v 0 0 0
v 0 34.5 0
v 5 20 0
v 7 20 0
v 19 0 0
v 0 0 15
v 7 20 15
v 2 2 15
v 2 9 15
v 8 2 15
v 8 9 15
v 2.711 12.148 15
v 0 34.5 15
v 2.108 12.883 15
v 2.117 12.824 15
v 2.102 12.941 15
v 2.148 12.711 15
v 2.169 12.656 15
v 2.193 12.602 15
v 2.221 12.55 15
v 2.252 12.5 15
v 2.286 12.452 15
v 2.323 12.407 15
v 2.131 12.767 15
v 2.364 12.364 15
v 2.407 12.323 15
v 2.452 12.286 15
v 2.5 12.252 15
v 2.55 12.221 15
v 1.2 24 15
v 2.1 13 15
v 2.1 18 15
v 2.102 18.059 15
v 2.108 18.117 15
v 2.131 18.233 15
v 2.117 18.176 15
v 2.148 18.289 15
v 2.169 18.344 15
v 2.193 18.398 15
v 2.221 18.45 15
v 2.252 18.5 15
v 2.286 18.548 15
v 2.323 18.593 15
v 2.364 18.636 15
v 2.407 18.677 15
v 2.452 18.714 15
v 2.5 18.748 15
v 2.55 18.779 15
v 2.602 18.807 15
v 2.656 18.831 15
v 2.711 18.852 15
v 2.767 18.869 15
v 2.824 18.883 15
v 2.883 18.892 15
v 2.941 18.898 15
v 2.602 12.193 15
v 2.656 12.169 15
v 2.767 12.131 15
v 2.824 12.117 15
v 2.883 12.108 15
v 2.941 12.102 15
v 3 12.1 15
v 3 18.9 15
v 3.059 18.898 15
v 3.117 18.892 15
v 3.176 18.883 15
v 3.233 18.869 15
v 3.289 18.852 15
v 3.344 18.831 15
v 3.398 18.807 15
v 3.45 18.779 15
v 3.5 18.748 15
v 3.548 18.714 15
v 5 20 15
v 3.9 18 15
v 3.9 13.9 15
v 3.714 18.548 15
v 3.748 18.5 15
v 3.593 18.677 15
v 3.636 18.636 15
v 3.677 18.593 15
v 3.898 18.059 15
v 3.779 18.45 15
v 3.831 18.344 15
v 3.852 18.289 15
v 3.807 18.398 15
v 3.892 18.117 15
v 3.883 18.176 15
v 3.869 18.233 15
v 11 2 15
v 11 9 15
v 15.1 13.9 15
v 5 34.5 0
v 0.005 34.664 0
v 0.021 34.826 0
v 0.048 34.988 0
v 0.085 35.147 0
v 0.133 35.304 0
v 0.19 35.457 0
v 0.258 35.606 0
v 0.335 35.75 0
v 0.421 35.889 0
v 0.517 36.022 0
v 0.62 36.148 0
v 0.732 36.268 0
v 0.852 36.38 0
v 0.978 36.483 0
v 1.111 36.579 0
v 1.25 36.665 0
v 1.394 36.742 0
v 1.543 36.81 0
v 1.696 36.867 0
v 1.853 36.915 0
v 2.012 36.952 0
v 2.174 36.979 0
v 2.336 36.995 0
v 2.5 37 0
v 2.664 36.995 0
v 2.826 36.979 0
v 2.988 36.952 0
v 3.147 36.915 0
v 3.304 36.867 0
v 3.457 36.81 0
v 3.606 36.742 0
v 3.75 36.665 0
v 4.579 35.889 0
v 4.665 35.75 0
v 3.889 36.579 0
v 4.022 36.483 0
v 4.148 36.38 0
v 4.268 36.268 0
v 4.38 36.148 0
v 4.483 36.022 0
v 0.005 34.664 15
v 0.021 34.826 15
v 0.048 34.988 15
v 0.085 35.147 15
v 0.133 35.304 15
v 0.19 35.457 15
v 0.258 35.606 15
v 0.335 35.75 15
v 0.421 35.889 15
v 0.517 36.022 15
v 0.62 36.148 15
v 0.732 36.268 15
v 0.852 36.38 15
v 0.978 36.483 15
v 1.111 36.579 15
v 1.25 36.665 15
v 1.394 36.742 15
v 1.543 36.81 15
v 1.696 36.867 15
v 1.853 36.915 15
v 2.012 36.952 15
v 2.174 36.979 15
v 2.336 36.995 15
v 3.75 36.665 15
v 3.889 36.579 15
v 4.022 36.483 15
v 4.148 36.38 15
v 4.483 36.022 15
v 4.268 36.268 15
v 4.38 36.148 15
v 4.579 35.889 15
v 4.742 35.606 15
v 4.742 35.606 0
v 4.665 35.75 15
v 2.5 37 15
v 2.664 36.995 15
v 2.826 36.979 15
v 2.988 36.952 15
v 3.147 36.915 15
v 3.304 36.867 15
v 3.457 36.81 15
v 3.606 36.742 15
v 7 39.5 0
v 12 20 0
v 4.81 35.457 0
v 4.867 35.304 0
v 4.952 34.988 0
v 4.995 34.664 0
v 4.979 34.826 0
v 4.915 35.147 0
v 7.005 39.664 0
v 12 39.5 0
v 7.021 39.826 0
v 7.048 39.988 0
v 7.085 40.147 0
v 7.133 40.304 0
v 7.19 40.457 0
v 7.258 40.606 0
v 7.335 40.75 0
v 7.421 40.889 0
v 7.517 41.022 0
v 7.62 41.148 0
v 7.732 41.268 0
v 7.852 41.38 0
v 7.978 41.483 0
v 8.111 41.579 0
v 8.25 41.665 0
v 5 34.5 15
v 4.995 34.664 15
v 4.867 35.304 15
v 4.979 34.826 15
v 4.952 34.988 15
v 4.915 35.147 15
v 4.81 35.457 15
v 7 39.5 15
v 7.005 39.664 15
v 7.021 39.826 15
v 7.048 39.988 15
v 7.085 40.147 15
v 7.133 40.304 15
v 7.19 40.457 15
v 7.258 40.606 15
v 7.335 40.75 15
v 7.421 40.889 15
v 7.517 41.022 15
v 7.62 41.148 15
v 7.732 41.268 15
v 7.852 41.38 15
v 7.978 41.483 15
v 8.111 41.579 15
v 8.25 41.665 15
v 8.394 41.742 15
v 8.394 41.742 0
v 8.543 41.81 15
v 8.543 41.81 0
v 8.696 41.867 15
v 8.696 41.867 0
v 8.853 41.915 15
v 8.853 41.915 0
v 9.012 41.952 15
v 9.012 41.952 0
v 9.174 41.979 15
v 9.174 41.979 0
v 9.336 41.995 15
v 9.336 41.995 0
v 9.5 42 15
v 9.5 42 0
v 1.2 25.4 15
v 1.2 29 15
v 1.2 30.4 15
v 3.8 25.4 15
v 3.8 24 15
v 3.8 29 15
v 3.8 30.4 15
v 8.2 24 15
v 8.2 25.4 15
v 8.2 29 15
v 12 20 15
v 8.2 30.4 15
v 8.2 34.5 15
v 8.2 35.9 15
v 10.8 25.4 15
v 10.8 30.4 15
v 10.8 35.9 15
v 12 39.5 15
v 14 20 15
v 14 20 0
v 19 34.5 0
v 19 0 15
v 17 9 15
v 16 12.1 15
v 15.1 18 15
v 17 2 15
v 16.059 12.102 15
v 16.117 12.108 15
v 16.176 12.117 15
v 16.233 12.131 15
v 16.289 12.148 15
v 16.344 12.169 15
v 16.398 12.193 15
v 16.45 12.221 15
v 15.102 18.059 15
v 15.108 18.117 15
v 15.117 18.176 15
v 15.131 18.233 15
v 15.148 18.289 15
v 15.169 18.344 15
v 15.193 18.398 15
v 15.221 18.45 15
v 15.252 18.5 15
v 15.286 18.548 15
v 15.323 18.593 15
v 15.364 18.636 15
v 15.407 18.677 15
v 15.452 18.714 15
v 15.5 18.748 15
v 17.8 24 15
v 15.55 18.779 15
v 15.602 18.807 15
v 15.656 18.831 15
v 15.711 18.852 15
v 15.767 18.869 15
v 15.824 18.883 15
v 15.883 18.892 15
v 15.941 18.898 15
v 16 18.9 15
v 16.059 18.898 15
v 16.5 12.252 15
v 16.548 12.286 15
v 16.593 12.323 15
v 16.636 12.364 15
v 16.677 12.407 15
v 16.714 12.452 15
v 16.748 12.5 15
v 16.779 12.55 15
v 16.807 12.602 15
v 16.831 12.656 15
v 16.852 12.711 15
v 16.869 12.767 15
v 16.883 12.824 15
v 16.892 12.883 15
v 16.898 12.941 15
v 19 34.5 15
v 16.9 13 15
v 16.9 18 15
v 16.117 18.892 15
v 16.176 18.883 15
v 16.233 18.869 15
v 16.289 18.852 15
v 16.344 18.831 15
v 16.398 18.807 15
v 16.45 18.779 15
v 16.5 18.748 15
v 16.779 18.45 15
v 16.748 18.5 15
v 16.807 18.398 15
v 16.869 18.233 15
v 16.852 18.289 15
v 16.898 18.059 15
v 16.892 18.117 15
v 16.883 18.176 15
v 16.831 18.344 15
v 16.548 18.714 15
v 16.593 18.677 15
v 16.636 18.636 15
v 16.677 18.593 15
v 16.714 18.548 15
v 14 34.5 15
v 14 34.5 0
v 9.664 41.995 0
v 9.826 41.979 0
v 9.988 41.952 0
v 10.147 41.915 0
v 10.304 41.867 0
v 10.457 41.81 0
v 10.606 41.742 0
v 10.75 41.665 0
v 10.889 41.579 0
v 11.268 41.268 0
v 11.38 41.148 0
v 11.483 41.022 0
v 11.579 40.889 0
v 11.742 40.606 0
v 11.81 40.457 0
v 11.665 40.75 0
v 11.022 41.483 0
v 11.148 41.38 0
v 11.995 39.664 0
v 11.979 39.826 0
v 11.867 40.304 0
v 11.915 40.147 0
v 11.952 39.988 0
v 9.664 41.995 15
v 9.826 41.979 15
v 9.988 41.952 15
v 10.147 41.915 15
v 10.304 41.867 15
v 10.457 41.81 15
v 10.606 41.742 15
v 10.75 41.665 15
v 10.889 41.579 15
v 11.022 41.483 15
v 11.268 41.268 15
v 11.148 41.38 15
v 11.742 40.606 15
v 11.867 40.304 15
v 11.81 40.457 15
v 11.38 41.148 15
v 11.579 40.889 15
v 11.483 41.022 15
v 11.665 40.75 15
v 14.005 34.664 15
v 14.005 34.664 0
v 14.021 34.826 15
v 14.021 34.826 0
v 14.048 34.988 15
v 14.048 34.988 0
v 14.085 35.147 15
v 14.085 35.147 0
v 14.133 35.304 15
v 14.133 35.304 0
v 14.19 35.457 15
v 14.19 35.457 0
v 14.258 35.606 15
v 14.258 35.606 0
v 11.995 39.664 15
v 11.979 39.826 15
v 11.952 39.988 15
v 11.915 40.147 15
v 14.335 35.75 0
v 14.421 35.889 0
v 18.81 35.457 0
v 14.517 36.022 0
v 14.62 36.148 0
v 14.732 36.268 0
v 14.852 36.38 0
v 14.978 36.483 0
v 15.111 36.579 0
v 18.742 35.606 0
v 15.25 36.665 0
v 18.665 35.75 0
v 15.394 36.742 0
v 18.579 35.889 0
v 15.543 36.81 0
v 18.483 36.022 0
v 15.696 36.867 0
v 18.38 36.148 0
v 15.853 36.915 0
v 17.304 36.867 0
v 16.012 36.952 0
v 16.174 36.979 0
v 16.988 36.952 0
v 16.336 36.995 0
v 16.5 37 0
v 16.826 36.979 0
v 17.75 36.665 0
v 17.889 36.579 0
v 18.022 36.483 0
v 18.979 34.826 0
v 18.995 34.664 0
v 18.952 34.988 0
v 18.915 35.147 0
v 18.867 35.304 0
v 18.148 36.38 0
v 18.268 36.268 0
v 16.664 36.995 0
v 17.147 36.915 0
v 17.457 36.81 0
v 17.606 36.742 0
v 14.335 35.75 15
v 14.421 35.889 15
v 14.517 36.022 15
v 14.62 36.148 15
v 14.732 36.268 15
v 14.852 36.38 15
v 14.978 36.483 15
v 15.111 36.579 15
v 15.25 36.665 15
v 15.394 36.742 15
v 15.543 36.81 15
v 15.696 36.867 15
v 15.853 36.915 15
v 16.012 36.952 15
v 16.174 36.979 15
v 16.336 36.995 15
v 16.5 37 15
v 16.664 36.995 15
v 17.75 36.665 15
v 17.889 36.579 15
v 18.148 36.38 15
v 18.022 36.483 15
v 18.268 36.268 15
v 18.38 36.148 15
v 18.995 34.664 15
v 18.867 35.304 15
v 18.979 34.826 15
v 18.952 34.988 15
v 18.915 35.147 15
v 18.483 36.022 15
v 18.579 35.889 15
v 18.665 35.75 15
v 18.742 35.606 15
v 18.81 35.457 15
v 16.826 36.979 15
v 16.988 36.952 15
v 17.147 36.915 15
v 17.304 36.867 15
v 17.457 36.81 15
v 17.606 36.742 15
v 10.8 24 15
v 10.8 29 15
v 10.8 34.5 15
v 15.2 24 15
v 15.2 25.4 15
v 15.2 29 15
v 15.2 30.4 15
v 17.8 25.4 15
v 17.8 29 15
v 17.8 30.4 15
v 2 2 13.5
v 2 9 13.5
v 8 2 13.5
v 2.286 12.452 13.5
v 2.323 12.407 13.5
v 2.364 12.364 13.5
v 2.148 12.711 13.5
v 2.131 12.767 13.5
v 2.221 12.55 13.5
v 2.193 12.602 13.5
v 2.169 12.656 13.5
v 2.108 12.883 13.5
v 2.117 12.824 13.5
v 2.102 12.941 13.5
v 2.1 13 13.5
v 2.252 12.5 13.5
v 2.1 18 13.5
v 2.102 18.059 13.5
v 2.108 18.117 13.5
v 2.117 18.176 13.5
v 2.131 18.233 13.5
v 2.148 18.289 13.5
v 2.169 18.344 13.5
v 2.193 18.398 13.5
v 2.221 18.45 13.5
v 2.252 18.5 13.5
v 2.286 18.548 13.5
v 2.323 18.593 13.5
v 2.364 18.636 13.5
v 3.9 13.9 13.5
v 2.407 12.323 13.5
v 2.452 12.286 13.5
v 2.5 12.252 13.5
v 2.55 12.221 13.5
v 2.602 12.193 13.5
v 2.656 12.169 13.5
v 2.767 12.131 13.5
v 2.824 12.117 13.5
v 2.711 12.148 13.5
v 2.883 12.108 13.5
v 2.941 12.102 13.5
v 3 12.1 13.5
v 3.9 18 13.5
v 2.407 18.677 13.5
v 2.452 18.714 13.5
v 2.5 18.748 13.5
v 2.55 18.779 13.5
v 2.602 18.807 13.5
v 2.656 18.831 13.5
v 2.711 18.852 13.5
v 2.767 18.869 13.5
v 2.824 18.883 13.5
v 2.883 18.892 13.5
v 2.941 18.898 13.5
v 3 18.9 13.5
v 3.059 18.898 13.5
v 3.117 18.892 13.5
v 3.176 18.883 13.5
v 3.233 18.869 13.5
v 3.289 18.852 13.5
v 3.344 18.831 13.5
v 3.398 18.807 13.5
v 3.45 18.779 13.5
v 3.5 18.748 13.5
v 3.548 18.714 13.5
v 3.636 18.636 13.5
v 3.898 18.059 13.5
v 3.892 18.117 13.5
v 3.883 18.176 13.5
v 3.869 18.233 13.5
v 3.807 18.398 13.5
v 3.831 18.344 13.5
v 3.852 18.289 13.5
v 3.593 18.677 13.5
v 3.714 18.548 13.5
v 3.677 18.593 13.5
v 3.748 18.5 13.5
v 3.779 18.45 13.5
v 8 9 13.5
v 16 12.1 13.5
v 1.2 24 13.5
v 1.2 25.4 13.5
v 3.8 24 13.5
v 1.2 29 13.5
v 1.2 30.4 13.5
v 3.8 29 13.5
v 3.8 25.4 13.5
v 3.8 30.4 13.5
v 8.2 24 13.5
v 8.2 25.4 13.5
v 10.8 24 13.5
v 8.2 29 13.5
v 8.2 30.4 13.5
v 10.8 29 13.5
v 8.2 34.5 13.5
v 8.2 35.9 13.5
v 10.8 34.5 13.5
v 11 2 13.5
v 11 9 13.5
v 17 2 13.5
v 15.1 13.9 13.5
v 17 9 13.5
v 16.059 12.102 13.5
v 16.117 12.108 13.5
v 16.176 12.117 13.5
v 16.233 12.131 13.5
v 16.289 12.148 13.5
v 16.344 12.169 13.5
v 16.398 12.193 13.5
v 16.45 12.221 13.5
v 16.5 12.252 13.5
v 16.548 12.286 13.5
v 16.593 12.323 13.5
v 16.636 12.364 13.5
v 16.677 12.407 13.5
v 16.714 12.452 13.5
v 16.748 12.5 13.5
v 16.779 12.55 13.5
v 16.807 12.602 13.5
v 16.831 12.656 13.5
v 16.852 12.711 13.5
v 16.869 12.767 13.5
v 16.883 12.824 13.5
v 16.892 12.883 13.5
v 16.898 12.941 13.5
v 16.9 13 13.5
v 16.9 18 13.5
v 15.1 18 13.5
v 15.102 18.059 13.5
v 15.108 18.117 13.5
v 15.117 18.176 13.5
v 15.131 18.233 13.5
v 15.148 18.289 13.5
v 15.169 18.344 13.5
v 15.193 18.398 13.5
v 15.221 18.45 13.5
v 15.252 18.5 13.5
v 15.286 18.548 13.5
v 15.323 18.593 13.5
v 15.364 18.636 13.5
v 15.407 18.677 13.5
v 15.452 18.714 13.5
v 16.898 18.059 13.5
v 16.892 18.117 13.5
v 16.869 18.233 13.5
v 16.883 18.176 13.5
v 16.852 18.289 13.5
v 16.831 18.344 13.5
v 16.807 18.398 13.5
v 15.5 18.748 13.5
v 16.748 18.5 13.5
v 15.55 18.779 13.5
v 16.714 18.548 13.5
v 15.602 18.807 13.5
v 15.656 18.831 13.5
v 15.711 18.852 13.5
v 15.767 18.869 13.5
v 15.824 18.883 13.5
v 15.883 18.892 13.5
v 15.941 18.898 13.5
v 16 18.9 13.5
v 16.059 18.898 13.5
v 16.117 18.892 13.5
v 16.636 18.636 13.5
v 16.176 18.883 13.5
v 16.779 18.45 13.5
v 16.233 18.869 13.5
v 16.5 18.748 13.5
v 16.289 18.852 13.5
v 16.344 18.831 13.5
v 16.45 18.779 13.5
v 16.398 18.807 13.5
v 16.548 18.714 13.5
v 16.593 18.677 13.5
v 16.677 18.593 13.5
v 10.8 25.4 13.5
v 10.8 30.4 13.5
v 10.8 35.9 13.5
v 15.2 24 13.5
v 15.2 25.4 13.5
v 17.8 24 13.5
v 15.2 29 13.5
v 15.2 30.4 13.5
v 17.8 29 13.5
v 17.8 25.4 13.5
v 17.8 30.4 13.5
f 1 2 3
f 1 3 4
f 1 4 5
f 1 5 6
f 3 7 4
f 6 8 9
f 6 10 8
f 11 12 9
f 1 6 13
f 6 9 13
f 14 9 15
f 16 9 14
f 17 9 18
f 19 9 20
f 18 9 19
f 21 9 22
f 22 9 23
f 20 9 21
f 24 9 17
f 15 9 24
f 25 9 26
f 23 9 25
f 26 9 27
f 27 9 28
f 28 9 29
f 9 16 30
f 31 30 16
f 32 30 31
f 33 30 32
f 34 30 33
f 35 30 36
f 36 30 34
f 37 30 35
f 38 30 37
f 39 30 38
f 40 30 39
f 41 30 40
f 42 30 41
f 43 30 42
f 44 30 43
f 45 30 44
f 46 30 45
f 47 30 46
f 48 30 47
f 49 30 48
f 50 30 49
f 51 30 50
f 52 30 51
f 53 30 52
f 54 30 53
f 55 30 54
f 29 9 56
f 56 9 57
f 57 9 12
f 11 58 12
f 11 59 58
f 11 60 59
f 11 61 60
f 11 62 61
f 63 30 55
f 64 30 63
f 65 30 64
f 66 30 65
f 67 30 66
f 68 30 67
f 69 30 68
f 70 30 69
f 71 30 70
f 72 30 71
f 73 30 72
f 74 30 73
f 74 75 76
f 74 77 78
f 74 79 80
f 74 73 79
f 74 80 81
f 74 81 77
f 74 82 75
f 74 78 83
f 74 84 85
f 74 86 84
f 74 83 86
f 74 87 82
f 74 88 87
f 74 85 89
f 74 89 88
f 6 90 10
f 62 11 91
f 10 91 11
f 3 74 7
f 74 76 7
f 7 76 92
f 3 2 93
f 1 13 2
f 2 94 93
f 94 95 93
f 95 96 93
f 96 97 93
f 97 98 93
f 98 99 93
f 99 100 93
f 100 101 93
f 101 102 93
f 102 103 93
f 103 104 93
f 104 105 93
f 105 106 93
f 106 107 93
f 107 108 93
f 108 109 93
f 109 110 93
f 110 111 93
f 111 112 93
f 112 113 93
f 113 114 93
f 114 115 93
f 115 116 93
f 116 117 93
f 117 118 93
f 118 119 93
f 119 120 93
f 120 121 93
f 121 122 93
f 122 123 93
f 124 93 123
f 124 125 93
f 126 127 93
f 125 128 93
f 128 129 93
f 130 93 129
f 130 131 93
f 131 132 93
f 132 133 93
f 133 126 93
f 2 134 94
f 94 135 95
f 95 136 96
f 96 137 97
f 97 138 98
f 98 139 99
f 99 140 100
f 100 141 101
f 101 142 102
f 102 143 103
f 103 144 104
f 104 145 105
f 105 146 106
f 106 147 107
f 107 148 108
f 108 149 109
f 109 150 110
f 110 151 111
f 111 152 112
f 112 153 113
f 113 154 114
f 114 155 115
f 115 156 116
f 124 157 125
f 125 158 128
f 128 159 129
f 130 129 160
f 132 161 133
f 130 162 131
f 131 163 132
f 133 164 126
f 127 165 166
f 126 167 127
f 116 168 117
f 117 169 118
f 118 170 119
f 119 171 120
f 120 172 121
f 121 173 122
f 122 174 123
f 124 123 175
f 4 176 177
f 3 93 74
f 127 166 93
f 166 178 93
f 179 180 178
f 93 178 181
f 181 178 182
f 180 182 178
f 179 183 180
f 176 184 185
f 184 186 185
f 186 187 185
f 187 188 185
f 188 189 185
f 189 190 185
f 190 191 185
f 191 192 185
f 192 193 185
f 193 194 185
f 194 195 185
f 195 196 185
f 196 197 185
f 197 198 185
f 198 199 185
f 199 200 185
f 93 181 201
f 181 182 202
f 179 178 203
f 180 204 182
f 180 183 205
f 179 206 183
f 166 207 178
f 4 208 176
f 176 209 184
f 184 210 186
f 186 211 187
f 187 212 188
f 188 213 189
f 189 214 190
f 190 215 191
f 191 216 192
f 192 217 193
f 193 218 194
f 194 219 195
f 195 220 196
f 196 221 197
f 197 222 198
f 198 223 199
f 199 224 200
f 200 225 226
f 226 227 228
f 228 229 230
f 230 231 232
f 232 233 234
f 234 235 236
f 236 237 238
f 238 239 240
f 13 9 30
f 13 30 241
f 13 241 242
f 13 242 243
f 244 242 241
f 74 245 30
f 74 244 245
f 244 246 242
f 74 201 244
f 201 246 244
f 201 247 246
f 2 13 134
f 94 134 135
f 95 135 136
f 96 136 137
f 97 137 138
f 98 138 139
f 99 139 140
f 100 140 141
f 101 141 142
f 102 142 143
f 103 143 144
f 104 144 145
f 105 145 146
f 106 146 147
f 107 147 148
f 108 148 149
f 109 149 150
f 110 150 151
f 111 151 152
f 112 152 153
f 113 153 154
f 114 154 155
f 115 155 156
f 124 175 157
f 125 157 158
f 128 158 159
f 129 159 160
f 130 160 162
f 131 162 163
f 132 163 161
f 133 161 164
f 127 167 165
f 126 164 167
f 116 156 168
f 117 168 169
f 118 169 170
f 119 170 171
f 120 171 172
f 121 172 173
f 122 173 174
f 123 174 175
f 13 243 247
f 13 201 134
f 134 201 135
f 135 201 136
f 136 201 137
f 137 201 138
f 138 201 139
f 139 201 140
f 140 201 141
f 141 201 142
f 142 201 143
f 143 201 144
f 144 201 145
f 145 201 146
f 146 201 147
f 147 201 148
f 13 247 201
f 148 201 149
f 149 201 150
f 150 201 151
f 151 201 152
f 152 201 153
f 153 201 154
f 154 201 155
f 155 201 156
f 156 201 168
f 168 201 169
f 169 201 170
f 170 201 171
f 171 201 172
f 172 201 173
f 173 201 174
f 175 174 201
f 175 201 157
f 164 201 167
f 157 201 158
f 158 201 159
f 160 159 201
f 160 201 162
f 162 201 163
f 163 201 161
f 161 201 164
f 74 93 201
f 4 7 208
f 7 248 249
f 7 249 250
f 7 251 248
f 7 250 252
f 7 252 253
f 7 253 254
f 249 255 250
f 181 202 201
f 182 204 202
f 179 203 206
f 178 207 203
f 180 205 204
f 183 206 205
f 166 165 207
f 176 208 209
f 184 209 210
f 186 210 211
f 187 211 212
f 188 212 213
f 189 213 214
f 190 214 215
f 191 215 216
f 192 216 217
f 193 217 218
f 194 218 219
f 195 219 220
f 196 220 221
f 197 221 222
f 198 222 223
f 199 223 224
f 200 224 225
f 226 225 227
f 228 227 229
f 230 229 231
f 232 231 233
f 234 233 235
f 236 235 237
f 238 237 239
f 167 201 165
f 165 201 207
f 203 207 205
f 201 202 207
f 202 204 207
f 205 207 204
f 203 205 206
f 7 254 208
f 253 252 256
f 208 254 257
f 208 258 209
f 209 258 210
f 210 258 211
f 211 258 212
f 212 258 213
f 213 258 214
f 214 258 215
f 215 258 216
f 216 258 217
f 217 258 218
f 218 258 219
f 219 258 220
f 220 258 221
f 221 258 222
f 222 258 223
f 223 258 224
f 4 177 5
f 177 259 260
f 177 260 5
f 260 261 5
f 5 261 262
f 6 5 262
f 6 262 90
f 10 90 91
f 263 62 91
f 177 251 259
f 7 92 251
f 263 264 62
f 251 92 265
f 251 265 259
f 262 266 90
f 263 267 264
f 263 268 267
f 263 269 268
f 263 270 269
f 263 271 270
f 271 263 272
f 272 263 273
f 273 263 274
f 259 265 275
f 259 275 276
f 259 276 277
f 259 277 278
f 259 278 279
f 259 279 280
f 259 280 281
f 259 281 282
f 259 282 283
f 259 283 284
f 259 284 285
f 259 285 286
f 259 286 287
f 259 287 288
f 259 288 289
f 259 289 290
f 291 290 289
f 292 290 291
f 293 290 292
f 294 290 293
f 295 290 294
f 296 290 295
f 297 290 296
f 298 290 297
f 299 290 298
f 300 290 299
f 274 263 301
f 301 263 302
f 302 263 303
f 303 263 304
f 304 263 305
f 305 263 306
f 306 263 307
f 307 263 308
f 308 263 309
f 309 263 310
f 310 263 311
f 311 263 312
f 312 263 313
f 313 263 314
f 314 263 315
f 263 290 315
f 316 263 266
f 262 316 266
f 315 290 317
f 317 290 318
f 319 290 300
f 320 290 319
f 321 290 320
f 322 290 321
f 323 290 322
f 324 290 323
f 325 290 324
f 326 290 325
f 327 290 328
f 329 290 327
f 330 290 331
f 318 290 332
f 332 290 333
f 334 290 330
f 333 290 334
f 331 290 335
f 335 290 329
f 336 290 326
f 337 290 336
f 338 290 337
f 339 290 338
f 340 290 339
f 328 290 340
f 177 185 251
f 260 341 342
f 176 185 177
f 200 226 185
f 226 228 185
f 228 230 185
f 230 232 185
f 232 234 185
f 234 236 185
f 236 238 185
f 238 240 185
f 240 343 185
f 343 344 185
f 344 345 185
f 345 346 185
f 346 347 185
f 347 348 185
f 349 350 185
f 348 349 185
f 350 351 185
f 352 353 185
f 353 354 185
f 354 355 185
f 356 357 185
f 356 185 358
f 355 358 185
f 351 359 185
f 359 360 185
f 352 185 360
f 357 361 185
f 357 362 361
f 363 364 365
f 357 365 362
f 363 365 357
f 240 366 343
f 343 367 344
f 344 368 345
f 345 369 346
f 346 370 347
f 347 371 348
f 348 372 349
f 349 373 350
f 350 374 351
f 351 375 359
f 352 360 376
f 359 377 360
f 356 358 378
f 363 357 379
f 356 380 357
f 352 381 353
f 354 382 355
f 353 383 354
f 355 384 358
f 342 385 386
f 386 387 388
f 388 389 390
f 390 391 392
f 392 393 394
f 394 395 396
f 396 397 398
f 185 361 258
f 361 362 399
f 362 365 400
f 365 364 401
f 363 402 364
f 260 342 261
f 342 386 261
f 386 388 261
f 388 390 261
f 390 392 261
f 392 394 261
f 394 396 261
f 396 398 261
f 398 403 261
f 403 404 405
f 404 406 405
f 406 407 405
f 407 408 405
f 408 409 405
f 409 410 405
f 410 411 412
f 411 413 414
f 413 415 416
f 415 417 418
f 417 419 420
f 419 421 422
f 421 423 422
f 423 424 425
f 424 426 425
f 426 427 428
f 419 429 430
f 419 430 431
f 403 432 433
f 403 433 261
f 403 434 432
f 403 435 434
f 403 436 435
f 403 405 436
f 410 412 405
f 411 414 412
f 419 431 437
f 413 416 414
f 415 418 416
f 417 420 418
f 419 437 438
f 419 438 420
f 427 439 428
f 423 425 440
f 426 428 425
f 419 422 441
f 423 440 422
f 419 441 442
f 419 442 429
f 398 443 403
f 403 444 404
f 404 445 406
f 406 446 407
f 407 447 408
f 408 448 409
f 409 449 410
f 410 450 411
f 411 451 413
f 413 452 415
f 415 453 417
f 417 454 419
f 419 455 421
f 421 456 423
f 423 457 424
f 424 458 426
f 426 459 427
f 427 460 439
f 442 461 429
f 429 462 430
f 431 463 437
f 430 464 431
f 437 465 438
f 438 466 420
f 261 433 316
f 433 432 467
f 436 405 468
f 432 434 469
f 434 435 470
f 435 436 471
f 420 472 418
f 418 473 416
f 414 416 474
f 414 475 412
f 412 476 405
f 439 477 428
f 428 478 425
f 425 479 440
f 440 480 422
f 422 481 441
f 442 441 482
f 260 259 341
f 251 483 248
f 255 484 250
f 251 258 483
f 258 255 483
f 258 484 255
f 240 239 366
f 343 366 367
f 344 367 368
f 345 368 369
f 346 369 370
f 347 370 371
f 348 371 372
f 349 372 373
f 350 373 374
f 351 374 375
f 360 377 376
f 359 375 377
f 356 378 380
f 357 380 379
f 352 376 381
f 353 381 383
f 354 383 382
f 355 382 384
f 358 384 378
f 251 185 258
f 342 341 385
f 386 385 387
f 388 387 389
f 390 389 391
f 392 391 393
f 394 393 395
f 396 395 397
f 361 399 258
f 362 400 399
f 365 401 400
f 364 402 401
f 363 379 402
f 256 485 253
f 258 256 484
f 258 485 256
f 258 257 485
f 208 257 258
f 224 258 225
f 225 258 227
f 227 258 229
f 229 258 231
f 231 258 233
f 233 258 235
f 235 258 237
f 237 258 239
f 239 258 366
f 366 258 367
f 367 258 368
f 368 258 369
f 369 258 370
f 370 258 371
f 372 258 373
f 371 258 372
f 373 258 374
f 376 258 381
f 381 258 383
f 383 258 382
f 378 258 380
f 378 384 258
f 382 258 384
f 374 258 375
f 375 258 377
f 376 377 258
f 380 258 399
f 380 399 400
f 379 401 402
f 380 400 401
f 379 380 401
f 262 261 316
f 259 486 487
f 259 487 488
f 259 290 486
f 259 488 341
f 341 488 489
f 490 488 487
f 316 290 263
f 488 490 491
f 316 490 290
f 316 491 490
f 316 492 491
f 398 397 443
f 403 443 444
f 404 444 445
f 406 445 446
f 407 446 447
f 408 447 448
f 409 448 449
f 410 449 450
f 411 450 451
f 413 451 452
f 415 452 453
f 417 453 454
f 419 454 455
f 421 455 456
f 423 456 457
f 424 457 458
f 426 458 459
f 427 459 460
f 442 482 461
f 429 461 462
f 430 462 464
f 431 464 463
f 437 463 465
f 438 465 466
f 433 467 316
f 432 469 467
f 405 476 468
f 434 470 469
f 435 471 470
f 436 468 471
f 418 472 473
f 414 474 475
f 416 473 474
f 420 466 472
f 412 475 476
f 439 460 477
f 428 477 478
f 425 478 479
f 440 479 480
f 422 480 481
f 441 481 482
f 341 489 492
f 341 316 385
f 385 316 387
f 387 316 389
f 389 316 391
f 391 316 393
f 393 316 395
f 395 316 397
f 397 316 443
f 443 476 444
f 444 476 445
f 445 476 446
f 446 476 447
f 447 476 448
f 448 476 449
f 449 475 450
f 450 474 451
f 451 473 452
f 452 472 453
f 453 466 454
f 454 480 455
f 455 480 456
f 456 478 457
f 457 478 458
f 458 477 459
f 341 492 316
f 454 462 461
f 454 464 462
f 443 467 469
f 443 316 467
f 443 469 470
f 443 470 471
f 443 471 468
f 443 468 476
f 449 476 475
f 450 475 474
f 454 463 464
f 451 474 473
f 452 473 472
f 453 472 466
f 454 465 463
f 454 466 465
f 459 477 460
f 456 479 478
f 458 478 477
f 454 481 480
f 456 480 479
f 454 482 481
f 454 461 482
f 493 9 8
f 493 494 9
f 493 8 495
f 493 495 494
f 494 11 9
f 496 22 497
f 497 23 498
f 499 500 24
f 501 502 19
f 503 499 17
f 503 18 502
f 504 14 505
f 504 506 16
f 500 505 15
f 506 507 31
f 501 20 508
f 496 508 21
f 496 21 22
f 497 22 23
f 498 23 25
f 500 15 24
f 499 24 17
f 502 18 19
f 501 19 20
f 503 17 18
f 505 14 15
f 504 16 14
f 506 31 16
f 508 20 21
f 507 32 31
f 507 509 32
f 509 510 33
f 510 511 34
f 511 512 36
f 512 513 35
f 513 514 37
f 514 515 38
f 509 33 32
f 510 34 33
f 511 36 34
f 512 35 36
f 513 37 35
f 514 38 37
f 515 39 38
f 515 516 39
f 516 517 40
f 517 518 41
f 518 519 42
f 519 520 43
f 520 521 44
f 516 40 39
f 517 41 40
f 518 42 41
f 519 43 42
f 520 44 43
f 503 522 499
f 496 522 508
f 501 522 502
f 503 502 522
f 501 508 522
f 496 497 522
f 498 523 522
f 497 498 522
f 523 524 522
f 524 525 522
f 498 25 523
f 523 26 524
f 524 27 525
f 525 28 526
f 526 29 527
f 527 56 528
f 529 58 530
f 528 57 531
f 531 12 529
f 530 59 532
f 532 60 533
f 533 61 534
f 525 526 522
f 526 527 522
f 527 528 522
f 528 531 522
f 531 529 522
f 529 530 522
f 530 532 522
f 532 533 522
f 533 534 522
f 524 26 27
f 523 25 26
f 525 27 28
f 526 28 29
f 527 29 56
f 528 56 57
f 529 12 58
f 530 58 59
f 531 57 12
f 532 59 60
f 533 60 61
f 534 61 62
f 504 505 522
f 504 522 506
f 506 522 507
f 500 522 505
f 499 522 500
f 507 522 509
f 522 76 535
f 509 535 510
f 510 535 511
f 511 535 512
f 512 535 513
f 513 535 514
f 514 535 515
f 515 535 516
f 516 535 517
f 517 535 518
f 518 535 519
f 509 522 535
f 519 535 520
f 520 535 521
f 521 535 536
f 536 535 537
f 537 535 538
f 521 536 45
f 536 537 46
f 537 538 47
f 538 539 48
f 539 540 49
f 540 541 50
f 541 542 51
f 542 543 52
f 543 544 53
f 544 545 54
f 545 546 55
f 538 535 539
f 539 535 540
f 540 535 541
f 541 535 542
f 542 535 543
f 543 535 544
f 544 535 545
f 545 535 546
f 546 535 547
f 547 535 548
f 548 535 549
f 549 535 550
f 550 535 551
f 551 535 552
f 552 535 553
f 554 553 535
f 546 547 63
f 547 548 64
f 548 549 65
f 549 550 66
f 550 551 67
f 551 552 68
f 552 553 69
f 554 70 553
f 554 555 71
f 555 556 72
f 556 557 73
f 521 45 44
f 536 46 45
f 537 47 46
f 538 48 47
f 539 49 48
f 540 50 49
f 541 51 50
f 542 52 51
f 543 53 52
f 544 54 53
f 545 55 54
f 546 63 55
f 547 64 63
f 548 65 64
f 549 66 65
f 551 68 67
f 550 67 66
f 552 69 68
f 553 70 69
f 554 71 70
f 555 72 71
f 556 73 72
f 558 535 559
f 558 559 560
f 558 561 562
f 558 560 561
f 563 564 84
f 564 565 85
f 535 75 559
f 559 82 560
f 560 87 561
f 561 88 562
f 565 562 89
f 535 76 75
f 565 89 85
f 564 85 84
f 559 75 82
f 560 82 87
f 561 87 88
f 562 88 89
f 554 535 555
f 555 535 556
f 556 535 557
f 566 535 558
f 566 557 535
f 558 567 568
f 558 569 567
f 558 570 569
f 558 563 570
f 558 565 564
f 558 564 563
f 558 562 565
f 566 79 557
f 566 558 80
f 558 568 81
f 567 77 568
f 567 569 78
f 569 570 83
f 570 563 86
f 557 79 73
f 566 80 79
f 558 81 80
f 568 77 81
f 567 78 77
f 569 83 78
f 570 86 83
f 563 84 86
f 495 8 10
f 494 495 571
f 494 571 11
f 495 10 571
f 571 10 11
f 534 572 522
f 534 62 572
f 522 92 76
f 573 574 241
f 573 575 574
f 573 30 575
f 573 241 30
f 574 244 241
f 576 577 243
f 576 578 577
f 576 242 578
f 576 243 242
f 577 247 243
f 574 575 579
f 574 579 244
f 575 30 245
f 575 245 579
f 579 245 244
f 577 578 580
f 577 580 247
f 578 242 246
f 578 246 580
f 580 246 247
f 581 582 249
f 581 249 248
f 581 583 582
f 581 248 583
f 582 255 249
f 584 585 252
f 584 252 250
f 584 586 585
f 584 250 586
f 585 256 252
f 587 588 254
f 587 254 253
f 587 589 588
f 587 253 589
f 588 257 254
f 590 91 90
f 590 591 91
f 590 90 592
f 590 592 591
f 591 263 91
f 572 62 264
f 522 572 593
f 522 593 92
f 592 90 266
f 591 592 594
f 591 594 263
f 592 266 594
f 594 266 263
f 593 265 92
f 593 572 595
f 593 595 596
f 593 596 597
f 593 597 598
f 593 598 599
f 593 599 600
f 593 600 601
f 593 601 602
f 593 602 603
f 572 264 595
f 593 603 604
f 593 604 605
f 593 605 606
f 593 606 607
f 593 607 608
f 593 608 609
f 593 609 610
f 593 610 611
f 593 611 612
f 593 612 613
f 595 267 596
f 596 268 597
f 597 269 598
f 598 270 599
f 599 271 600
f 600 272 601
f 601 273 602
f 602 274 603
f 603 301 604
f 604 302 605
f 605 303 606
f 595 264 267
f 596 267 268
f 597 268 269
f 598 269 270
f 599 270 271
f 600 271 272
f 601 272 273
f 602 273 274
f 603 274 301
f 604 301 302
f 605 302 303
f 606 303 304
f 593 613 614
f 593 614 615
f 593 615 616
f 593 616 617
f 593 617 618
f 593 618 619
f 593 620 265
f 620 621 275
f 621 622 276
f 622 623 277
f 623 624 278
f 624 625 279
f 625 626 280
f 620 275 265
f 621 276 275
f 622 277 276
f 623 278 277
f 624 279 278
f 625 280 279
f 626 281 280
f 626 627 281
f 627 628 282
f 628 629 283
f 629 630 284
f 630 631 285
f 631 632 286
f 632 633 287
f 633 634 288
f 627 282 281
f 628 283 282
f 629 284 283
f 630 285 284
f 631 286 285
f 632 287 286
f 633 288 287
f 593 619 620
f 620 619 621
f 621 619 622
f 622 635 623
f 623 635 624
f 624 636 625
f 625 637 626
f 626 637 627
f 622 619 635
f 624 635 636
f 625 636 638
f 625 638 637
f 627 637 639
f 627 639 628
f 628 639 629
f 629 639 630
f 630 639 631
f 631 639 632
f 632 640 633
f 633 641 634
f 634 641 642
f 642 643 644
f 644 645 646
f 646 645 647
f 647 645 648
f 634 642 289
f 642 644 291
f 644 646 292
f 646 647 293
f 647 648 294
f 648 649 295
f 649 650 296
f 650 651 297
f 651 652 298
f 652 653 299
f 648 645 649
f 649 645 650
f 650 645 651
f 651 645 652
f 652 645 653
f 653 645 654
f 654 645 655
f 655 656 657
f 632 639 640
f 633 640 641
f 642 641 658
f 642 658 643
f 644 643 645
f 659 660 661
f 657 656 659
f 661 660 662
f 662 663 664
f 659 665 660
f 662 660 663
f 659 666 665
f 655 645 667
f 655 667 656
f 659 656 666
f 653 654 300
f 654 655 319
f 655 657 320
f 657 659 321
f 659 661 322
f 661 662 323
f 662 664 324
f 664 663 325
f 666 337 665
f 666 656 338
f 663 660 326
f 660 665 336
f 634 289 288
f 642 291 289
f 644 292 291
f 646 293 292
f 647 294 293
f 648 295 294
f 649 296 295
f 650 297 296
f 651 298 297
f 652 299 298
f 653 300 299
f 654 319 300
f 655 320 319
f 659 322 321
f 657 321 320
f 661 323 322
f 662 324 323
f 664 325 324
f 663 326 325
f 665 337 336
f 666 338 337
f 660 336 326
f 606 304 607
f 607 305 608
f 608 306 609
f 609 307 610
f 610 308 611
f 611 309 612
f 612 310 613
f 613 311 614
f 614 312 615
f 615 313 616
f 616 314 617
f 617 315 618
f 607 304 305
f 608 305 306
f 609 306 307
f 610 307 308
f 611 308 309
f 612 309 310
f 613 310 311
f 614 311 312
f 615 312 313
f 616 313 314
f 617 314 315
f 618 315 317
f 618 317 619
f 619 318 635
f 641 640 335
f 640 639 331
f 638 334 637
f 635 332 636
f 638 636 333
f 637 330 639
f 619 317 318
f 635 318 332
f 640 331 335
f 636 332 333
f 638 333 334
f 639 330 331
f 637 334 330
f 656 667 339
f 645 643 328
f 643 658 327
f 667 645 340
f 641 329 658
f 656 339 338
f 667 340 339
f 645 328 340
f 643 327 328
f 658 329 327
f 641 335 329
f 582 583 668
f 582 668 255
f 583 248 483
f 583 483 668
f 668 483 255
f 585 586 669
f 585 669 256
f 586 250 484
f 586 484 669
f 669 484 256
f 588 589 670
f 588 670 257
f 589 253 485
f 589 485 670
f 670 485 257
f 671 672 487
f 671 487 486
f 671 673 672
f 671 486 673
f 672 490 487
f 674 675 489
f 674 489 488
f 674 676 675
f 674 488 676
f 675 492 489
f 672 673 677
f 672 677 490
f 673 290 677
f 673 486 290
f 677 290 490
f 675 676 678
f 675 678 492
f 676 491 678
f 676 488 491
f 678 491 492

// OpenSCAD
// Building facade miniature for board games.
// Millimetres. X=width, Y=height, Z=depth.
// Print flat at Z=0; straight base at Y=0; front at Z=15.
// All recesses are blind and 1.5 mm deep. This is a solid piece.
$fn=96;
depth=15;
recess=1.5;
module rect(x,y,w,h) { translate([x,y]) square([w,h]); }
module disc(x,y,r) { translate([x,y]) circle(r=r); }
module line(a,b,w=1.4) {
    hull() { translate(a) circle(d=w); translate(b) circle(d=w); }
}
module frame(x,y,w,h,t=1.4) {
    difference() { rect(x,y,w,h); rect(x+t,y+t,w-2*t,h-2*t); }
}
module gear(x,y,r=6,inner=2.4) {
    translate([x,y]) difference() {
        polygon([for(i=[0:(r<4?15:23)]) let(n=(r<4?16:24),a=(i+1)*360/n,rr=(i%4<2?r:r-min(1.5,r*0.21))) [rr*cos(a),rr*sin(a)]]);
        circle(r=inner);
    }
}
module car(x,y,w=14,h=5) {
    translate([x,y]) union() {
        polygon([[0,0.8],[0,h*0.48],[w*0.2,h*0.48],
                 [w*0.35,h],[w*0.67,h],[w*0.82,h*0.48],
                 [w,h*0.35],[w,0.8]]);
        disc(w*0.23,0.8,1.3); disc(w*0.77,0.8,1.3);
    }
}
module recycling(x,y,r=6) {
    translate([x,y]) for(a=[0,120,240]) rotate(a) {
        line([-3.8,3.2],[1.2,3.2],1.6);
        polygon([[1.2,1.7],[4.2,3.2],[1.2,4.7]]);
    }
}
module cutface() { translate([0,0,depth-recess]) linear_extrude(height=recess+0.5) facade(); }
// All details are recessed into the same solid facade.
difference() {
    linear_extrude(height=depth) outline();
    cutface();
}


module outline() {
    union() {
        rect(0,0,19,20);
        rect(0,18,5,16.5); disc(2.5,34.5,2.5);
        rect(7,18,5,21.5); disc(9.5,39.5,2.5);
        rect(14,18,5,16.5); disc(16.5,34.5,2.5);
    }
}
module facade() {
    for(x=[1.2,8.2,15.2]) {
        rect(x,24,2.6,1.4); rect(x,29,2.6,1.4);
    }
    line([3,13],[16,13],1.8);
    line([3,13],[3,18],1.8); line([16,13],[16,18],1.8);
    rect(2,2,6,7); rect(11,2,6,7);
    rect(8.2,34.5,2.6,1.4);
}
